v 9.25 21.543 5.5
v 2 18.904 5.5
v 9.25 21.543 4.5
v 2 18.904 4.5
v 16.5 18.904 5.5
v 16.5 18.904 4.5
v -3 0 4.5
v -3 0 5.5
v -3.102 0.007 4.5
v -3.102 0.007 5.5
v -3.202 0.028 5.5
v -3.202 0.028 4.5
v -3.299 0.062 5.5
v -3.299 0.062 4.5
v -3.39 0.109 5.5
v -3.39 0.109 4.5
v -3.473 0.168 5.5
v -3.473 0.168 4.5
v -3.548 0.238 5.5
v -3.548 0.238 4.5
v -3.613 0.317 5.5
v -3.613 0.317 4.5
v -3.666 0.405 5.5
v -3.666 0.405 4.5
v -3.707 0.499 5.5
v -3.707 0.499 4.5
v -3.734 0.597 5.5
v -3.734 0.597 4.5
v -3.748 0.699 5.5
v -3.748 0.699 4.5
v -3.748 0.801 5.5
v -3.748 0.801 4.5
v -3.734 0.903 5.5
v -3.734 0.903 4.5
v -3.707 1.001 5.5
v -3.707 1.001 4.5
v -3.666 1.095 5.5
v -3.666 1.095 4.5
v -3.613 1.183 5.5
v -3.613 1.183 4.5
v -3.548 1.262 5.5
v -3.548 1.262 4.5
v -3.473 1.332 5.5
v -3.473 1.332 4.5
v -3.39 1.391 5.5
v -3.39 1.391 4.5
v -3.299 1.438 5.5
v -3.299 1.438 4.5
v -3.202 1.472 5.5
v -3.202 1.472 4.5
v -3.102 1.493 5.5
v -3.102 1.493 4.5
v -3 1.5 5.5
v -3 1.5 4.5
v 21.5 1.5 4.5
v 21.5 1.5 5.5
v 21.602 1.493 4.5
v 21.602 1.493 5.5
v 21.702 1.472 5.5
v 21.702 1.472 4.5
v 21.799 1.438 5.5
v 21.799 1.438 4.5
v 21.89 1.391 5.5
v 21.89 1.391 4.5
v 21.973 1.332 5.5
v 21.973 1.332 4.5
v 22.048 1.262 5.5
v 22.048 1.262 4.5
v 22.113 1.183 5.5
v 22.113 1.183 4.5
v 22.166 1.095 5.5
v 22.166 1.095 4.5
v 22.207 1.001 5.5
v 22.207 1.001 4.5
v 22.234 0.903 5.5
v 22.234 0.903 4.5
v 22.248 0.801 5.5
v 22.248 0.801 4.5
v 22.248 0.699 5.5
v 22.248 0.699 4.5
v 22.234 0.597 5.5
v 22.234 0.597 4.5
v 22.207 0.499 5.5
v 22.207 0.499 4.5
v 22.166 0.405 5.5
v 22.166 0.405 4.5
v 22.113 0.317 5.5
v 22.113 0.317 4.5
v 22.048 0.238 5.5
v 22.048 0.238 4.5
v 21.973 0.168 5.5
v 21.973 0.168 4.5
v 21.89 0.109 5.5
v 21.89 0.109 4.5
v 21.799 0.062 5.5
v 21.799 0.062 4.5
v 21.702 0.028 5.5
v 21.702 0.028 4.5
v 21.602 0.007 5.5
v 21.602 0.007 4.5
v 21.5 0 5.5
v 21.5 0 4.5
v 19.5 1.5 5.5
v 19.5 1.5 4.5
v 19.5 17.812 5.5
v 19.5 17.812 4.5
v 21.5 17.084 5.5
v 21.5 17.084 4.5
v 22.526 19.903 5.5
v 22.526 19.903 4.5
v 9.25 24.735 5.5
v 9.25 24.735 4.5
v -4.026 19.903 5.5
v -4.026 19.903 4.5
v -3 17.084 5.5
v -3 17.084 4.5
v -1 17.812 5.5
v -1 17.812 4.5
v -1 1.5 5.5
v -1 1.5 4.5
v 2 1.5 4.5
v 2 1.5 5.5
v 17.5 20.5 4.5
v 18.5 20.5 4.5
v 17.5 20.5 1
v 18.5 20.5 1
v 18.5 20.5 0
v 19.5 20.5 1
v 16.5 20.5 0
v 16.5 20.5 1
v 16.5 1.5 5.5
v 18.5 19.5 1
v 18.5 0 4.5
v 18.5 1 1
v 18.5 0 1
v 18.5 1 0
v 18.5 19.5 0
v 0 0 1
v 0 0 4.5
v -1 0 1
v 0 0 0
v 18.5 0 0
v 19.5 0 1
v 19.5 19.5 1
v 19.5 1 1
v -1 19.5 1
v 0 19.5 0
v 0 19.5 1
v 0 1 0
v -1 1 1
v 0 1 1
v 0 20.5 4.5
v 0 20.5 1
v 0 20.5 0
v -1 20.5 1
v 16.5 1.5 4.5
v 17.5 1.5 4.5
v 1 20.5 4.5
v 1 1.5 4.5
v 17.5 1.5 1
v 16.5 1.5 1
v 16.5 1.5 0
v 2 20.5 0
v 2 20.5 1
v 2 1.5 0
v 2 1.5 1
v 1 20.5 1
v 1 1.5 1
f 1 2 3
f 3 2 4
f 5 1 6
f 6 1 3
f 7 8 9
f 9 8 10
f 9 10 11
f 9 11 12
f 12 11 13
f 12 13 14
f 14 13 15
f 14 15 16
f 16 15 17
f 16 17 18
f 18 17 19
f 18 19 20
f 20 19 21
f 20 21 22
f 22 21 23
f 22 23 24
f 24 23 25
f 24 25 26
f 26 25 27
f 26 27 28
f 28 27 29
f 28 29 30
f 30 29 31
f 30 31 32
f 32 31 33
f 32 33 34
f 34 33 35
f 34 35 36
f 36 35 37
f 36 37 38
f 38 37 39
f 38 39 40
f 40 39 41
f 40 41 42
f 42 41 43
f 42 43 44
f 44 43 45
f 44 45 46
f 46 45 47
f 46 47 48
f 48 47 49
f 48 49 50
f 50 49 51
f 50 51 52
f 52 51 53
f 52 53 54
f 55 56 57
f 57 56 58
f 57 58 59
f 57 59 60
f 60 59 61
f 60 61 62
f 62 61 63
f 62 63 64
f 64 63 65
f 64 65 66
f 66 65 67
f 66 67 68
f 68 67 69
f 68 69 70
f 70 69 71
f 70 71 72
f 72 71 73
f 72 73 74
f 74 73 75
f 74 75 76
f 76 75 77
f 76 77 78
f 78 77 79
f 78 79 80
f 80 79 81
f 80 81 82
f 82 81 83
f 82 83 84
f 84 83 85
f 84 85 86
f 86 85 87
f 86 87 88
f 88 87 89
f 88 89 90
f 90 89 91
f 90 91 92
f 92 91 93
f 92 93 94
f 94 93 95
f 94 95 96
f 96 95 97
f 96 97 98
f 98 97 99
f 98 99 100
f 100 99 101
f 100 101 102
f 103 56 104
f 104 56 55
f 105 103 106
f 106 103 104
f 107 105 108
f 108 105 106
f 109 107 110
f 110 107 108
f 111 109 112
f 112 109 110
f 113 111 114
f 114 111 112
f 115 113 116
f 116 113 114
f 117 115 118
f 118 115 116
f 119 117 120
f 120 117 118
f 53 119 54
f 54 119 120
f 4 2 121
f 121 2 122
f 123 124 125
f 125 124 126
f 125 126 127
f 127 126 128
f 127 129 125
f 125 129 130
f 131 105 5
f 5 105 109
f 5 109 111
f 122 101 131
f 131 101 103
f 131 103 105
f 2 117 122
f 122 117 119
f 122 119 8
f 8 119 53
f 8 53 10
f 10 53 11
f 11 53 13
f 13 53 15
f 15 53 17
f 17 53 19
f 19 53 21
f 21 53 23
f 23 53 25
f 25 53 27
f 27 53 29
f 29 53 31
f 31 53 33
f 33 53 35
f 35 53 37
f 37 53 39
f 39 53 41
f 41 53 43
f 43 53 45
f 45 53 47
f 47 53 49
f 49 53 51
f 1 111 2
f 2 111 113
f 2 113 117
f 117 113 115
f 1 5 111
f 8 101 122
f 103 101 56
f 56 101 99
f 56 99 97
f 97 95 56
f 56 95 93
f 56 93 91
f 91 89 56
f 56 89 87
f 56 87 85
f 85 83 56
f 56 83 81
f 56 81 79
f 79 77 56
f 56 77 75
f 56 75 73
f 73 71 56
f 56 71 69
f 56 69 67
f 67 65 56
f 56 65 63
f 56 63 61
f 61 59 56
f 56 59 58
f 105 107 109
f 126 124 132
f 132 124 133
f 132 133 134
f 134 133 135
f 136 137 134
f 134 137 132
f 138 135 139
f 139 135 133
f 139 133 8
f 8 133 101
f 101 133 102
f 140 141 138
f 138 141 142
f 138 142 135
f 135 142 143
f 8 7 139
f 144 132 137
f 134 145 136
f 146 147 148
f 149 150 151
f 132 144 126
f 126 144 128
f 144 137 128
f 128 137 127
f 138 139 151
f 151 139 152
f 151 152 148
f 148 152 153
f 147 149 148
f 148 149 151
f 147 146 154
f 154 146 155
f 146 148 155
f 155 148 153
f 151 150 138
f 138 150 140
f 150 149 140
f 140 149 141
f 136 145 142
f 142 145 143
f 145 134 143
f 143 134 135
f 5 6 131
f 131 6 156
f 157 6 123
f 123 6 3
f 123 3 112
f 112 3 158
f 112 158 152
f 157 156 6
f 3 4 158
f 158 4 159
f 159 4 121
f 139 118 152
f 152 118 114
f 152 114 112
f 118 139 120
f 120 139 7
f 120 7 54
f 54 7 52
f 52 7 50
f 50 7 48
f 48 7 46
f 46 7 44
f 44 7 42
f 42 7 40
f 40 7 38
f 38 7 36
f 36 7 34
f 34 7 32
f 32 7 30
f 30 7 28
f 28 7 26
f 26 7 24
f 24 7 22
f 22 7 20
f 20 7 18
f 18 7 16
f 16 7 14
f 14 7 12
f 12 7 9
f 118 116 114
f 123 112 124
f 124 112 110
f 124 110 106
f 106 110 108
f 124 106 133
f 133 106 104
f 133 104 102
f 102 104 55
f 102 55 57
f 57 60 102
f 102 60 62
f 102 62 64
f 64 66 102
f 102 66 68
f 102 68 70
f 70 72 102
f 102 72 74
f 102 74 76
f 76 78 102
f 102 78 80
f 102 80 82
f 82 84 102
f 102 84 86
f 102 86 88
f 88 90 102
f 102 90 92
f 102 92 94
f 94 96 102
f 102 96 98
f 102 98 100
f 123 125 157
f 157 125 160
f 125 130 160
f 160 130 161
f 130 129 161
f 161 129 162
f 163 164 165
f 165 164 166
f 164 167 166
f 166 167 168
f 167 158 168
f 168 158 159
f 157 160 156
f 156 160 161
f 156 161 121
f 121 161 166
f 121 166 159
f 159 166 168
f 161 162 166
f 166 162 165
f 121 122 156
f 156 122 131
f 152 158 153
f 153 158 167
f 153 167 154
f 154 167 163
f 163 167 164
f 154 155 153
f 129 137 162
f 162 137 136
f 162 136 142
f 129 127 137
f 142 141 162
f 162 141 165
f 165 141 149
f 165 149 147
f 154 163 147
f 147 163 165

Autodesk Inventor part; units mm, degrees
ref_plane "YZ Plane" through (0, 0, 0) normal (1, 0, 0) x (0, 1, 0)
ref_plane "XZ Plane" through (0, 0, 0) normal (0, 1, 0) x (-1, 0, 0)
ref_plane "XY Plane" through (0, 0, 0) normal (0, 0, 1) x (1, 0, 0)
sketch "Skizze1" plane through (0, 0, 0) normal (0, 0, 1) x (1, 0, 0)
  line L0 (0, 0) -> (18.5, 0)
  line L1 (18.5, 0) -> (18.5, 20.5)
  line L2 (18.5, 20.5) -> (0, 20.5)
  line L3 (0, 20.5) -> (0, 0)
  dimension "d0" = 18.5
  dimension "d1" = 20.5
extrude "Extrusion1" add sketch "Skizze1" along normal blind 5.5
sketch "Skizze2" plane through (0, 20.5, 0) normal (0, 1, 0) x (1, 0, 0)
  line L0 (18.5, 0) -> (0, 0) projected
  line L1 (0, 0) -> (0, -5.5) projected
  line L2 (18.5, -5.5) -> (0, -5.5) projected
  line L3 (18.5, 0) -> (18.5, -5.5) projected
  line L4 (1, -1) -> (17.5, -1)
  line L5 (17.5, -1) -> (17.5, -4.5)
  line L6 (17.5, -4.5) -> (1, -4.5)
  line L7 (1, -4.5) -> (1, -1)
  line L8 (2, -4.5) -> (2, -5.5)
  line L9 (18.5, -5.5) -> (0, -5.5) projected
  line L10 (16.5, -4.5) -> (16.5, -5.5)
  line L11 (16.5, -1) -> (16.5, 0)
  line L12 (18.5, 0) -> (0, 0) projected
  line L13 (2, -1) -> (2, 0)
  point P0 (1, -2.75)
  point P1 (0, -2.75)
  point P2 (9.25, -1)
  point P3 (9.25, 0)
  point P4 (16.5, -5.5)
  point P5 (2, -5.5)
  point P6 (2, 0)
  point P7 (16.5, 0)
  dimension "d4" = 3.5
  dimension "d5" = 1
  dimension "d8" = 2
  dimension "d9" = 2
extrude "Extrusion2" cut sketch "Skizze2" against normal blind 19 contours L11 L4 L13 L0 | L4 L5 L6 L7 | L2 L8 L6 L10
sketch "Skizze3" plane through (0, 0, 0) normal (0, -1, 0) x (1, 0, 0)
  line L0 (0, 0) -> (18.5, 0) projected
  line L1 (18.5, 0) -> (18.5, 5.5) projected
  line L2 (0, 5.5) -> (18.5, 5.5) projected
  line L3 (0, 0) -> (0, 5.5) projected
  line L4 (0, 0) -> (0, 5.5) projected
  line L5 (0, 1) -> (-1, 1)
  line L6 (-1, 1) -> (0, 0)
  line L7 (18.5, 0) -> (18.5, 5.5) projected
  line L8 (18.5, 1) -> (19.5, 1)
  line L9 (19.5, 1) -> (18.5, 0)
  dimension "d10" = 1
  dimension "d11" = 1
extrude "Extrusion3" add sketch "Skizze3" against normal up to surface (20.5 mm away) contours L6 L5 L3 | L1 L8 L9
sketch "Skizze4" plane through (0, 0, 5.5) normal (0, 0, 1) x (1, 0, 0)
  line L0 (16.5, 20.5) -> (16.5, 1.5) projected
  line L1 (16.5, 1.5) -> (2, 1.5) projected
  line L2 (2, 1.5) -> (2, 20.5) projected
  line L3 (2, 20.5) -> (0, 20.5) projected
  line L4 (0, 20.5) -> (0, 0) projected
  line L5 (0, 0) -> (18.5, 0) projected
  line L6 (18.5, 0) -> (18.5, 20.5) projected
  line L7 (18.5, 20.5) -> (16.5, 20.5) projected
  line L8 (0, 20.5) -> (0, 0) projected
  line L9 (-1, 0) -> (-1, 20.5) projected
  line L10 (0, 19.5) -> (-1, 19.5)
  line L11 (-1, 19.5) -> (-1, 1)
  line L12 (-1, 1) -> (0, 1)
  line L13 (0, 1) -> (0, 19.5)
  line L14 (18.5, 0) -> (18.5, 20.5) projected
  line L15 (19.5, 0) -> (19.5, 20.5) projected
  line L16 (18.5, 19.5) -> (19.5, 19.5)
  line L17 (19.5, 19.5) -> (19.5, 1)
  line L18 (19.5, 1) -> (18.5, 1)
  line L19 (18.5, 1) -> (18.5, 19.5)
  line L20 (0, 20.5) -> (-1, 20.5) projected
  point P0 (0, 10.25)
  point P1 (18.5, 10.25)
  dimension "d14" = 1
extrude "Extrusion4" cut sketch "Skizze4" against normal through all contours L16 L15 L18 L6 | L4 L12 L9 L10
sketch "Skizze5" plane through (0, 0, 5.5) normal (0, 0, 1) x (1, 0, 0)
  line L0 (16.5, 20.5) -> (16.5, 1.5) projected
  line L1 (16.5, 1.5) -> (2, 1.5) projected
  line L2 (2, 1.5) -> (2, 20.5) projected
  line L3 (2, 20.5) -> (0, 20.5) projected
  line L4 (0, 20.5) -> (0, 0) projected
  line L5 (0, 0) -> (18.5, 0) projected
  line L6 (18.5, 0) -> (18.5, 20.5) projected
  line L7 (18.5, 20.5) -> (16.5, 20.5) projected
  line L8 (-3, 1.5) -> (21.5, 1.5)
  line L9 (21.5, 0) -> (-3, 0)
  arc A0 (-3, 1.5) -> (-3, 0) centre (-3, 0.75) ccw
  arc A1 (21.5, 0) -> (21.5, 1.5) centre (21.5, 0.75) ccw
  line L10 (-3, 17.0839) -> (-4.0261, 19.903)
  line L11 (-4.0261, 19.903) -> (9.25, 24.7351)
  line L12 (9.25, 24.7351) -> (22.5261, 19.903)
  line L13 (22.5261, 19.903) -> (21.5, 17.0839)
  line L14 (21.5, 17.0839) -> (9.25, 21.5425)
  line L15 (9.25, 21.5425) -> (-3, 17.0839)
  line L16 (16.5, 1.5) -> (2, 1.5) projected
  line L17 (-1, 17.8118) -> (-1, 1.5)
  line L18 (19.5, 1.5) -> (19.5, 17.8118)
  line L19 (2.513, 19.0905) -> (1.487, 21.9095) construction
  point P0 (9.25, 1.5)
  point P1 (18.5, 1.5)
  point P2 (0, 1.5)
  point P3 (9.25, 1.5)
  point P4 (2, 18.9037)
  point P5 (16.5, 18.9037)
  dimension "d18" = 3
  dimension "d31" = 20
  dimension "d32" = 3
  dimension "d33" = 1
extrude "Extrusion5" add sketch "Skizze5" against normal blind 1 contours L0 L14 L15 L2 L3 L4 L10 L11 L12 L13 L6 L7 | L8 L6 L5 L4 L1 | L14 L18 L8 L6 | L8 A1 L9 L6 | L8 L17 L15 L4 | L4 L9 A0 L8
equation "\"d9\" = d8"
properties part number "window_test"
